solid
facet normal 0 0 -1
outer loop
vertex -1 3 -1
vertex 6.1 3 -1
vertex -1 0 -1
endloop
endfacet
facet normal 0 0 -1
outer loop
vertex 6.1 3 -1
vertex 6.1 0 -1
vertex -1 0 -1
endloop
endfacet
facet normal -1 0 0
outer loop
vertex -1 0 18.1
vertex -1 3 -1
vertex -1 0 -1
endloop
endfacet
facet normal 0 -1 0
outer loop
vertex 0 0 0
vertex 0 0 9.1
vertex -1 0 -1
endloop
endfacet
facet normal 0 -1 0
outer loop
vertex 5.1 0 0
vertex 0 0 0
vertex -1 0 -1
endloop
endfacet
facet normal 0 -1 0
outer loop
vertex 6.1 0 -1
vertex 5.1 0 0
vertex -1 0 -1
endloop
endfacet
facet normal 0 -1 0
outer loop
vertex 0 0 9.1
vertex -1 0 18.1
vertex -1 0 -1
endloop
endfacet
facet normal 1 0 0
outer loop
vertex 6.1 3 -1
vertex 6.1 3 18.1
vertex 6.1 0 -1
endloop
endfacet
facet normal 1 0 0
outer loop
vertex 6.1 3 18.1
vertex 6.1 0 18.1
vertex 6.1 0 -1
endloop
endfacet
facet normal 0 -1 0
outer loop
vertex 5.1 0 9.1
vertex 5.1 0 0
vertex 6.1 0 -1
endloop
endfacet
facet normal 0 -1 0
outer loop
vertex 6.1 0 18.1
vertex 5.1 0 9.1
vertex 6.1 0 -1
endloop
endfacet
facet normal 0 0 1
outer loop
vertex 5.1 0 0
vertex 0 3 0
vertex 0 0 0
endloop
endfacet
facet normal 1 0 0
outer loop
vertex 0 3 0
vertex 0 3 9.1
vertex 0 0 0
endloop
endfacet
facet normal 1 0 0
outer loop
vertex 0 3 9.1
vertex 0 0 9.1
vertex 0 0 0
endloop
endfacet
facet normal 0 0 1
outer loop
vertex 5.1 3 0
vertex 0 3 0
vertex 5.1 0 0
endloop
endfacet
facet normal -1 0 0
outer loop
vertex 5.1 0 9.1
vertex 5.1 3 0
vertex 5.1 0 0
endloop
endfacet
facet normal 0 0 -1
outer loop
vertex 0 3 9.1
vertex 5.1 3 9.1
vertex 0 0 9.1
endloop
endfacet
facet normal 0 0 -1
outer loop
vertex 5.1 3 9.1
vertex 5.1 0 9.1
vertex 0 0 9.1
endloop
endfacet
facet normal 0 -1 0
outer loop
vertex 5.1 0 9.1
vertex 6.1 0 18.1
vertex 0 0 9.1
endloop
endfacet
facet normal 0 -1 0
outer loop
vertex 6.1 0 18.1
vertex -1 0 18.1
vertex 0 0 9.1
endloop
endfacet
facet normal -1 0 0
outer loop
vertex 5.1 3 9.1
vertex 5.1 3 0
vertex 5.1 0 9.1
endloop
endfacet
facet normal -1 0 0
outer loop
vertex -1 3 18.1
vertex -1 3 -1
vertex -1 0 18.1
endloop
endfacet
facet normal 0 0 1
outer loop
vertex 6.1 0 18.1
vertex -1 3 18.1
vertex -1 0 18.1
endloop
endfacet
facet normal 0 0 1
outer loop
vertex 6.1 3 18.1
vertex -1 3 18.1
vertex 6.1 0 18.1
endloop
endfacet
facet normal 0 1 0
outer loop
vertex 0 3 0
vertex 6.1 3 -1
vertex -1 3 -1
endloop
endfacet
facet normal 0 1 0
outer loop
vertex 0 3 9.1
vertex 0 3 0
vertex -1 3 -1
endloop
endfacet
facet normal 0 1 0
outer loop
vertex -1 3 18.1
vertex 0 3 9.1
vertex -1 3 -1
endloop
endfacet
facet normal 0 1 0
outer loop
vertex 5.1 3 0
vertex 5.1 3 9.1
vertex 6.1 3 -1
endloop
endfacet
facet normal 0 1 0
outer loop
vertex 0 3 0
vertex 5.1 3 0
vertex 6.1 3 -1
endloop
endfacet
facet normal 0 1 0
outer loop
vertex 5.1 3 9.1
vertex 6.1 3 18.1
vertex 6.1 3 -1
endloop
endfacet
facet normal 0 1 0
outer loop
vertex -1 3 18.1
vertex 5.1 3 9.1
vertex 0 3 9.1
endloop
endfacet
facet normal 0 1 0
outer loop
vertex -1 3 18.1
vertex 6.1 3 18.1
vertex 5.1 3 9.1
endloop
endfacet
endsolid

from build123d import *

# Parameters (mm, degrees)
SKETCH1_W           = 7.1
SKETCH1_H           = 11.1
SKETCH1_W_2         = 5.1
SKETCH1_H_2         = 9.1
SKETCH1_H_3         = 8
BOSS_EXTRUDE1_DEPTH = 3


with BuildPart() as part:
    # Sketch1 → Boss-Extrude1 (new body)
    # profile 1 of 2: a face of its own
    with BuildSketch(Plane(origin=(0, 0, 0), x_dir=(1, 0, 0), z_dir=(0, 1, 0))):
        with Locations((2.55, -4.55)):
            Rectangle(SKETCH1_W, SKETCH1_H)
        with Locations((2.55, -4.55)):
            Rectangle(SKETCH1_W_2, SKETCH1_H_2, mode=Mode.SUBTRACT)
    # profile 2 of 2: a face of its own
    with BuildSketch(Plane(origin=(0, 0, 0), x_dir=(1, 0, 0), z_dir=(0, 1, 0))):
        with Locations((2.55, -14.1)):
            Rectangle(SKETCH1_W, SKETCH1_H_3)
    extrude(amount=BOSS_EXTRUDE1_DEPTH)


solid = part.part
